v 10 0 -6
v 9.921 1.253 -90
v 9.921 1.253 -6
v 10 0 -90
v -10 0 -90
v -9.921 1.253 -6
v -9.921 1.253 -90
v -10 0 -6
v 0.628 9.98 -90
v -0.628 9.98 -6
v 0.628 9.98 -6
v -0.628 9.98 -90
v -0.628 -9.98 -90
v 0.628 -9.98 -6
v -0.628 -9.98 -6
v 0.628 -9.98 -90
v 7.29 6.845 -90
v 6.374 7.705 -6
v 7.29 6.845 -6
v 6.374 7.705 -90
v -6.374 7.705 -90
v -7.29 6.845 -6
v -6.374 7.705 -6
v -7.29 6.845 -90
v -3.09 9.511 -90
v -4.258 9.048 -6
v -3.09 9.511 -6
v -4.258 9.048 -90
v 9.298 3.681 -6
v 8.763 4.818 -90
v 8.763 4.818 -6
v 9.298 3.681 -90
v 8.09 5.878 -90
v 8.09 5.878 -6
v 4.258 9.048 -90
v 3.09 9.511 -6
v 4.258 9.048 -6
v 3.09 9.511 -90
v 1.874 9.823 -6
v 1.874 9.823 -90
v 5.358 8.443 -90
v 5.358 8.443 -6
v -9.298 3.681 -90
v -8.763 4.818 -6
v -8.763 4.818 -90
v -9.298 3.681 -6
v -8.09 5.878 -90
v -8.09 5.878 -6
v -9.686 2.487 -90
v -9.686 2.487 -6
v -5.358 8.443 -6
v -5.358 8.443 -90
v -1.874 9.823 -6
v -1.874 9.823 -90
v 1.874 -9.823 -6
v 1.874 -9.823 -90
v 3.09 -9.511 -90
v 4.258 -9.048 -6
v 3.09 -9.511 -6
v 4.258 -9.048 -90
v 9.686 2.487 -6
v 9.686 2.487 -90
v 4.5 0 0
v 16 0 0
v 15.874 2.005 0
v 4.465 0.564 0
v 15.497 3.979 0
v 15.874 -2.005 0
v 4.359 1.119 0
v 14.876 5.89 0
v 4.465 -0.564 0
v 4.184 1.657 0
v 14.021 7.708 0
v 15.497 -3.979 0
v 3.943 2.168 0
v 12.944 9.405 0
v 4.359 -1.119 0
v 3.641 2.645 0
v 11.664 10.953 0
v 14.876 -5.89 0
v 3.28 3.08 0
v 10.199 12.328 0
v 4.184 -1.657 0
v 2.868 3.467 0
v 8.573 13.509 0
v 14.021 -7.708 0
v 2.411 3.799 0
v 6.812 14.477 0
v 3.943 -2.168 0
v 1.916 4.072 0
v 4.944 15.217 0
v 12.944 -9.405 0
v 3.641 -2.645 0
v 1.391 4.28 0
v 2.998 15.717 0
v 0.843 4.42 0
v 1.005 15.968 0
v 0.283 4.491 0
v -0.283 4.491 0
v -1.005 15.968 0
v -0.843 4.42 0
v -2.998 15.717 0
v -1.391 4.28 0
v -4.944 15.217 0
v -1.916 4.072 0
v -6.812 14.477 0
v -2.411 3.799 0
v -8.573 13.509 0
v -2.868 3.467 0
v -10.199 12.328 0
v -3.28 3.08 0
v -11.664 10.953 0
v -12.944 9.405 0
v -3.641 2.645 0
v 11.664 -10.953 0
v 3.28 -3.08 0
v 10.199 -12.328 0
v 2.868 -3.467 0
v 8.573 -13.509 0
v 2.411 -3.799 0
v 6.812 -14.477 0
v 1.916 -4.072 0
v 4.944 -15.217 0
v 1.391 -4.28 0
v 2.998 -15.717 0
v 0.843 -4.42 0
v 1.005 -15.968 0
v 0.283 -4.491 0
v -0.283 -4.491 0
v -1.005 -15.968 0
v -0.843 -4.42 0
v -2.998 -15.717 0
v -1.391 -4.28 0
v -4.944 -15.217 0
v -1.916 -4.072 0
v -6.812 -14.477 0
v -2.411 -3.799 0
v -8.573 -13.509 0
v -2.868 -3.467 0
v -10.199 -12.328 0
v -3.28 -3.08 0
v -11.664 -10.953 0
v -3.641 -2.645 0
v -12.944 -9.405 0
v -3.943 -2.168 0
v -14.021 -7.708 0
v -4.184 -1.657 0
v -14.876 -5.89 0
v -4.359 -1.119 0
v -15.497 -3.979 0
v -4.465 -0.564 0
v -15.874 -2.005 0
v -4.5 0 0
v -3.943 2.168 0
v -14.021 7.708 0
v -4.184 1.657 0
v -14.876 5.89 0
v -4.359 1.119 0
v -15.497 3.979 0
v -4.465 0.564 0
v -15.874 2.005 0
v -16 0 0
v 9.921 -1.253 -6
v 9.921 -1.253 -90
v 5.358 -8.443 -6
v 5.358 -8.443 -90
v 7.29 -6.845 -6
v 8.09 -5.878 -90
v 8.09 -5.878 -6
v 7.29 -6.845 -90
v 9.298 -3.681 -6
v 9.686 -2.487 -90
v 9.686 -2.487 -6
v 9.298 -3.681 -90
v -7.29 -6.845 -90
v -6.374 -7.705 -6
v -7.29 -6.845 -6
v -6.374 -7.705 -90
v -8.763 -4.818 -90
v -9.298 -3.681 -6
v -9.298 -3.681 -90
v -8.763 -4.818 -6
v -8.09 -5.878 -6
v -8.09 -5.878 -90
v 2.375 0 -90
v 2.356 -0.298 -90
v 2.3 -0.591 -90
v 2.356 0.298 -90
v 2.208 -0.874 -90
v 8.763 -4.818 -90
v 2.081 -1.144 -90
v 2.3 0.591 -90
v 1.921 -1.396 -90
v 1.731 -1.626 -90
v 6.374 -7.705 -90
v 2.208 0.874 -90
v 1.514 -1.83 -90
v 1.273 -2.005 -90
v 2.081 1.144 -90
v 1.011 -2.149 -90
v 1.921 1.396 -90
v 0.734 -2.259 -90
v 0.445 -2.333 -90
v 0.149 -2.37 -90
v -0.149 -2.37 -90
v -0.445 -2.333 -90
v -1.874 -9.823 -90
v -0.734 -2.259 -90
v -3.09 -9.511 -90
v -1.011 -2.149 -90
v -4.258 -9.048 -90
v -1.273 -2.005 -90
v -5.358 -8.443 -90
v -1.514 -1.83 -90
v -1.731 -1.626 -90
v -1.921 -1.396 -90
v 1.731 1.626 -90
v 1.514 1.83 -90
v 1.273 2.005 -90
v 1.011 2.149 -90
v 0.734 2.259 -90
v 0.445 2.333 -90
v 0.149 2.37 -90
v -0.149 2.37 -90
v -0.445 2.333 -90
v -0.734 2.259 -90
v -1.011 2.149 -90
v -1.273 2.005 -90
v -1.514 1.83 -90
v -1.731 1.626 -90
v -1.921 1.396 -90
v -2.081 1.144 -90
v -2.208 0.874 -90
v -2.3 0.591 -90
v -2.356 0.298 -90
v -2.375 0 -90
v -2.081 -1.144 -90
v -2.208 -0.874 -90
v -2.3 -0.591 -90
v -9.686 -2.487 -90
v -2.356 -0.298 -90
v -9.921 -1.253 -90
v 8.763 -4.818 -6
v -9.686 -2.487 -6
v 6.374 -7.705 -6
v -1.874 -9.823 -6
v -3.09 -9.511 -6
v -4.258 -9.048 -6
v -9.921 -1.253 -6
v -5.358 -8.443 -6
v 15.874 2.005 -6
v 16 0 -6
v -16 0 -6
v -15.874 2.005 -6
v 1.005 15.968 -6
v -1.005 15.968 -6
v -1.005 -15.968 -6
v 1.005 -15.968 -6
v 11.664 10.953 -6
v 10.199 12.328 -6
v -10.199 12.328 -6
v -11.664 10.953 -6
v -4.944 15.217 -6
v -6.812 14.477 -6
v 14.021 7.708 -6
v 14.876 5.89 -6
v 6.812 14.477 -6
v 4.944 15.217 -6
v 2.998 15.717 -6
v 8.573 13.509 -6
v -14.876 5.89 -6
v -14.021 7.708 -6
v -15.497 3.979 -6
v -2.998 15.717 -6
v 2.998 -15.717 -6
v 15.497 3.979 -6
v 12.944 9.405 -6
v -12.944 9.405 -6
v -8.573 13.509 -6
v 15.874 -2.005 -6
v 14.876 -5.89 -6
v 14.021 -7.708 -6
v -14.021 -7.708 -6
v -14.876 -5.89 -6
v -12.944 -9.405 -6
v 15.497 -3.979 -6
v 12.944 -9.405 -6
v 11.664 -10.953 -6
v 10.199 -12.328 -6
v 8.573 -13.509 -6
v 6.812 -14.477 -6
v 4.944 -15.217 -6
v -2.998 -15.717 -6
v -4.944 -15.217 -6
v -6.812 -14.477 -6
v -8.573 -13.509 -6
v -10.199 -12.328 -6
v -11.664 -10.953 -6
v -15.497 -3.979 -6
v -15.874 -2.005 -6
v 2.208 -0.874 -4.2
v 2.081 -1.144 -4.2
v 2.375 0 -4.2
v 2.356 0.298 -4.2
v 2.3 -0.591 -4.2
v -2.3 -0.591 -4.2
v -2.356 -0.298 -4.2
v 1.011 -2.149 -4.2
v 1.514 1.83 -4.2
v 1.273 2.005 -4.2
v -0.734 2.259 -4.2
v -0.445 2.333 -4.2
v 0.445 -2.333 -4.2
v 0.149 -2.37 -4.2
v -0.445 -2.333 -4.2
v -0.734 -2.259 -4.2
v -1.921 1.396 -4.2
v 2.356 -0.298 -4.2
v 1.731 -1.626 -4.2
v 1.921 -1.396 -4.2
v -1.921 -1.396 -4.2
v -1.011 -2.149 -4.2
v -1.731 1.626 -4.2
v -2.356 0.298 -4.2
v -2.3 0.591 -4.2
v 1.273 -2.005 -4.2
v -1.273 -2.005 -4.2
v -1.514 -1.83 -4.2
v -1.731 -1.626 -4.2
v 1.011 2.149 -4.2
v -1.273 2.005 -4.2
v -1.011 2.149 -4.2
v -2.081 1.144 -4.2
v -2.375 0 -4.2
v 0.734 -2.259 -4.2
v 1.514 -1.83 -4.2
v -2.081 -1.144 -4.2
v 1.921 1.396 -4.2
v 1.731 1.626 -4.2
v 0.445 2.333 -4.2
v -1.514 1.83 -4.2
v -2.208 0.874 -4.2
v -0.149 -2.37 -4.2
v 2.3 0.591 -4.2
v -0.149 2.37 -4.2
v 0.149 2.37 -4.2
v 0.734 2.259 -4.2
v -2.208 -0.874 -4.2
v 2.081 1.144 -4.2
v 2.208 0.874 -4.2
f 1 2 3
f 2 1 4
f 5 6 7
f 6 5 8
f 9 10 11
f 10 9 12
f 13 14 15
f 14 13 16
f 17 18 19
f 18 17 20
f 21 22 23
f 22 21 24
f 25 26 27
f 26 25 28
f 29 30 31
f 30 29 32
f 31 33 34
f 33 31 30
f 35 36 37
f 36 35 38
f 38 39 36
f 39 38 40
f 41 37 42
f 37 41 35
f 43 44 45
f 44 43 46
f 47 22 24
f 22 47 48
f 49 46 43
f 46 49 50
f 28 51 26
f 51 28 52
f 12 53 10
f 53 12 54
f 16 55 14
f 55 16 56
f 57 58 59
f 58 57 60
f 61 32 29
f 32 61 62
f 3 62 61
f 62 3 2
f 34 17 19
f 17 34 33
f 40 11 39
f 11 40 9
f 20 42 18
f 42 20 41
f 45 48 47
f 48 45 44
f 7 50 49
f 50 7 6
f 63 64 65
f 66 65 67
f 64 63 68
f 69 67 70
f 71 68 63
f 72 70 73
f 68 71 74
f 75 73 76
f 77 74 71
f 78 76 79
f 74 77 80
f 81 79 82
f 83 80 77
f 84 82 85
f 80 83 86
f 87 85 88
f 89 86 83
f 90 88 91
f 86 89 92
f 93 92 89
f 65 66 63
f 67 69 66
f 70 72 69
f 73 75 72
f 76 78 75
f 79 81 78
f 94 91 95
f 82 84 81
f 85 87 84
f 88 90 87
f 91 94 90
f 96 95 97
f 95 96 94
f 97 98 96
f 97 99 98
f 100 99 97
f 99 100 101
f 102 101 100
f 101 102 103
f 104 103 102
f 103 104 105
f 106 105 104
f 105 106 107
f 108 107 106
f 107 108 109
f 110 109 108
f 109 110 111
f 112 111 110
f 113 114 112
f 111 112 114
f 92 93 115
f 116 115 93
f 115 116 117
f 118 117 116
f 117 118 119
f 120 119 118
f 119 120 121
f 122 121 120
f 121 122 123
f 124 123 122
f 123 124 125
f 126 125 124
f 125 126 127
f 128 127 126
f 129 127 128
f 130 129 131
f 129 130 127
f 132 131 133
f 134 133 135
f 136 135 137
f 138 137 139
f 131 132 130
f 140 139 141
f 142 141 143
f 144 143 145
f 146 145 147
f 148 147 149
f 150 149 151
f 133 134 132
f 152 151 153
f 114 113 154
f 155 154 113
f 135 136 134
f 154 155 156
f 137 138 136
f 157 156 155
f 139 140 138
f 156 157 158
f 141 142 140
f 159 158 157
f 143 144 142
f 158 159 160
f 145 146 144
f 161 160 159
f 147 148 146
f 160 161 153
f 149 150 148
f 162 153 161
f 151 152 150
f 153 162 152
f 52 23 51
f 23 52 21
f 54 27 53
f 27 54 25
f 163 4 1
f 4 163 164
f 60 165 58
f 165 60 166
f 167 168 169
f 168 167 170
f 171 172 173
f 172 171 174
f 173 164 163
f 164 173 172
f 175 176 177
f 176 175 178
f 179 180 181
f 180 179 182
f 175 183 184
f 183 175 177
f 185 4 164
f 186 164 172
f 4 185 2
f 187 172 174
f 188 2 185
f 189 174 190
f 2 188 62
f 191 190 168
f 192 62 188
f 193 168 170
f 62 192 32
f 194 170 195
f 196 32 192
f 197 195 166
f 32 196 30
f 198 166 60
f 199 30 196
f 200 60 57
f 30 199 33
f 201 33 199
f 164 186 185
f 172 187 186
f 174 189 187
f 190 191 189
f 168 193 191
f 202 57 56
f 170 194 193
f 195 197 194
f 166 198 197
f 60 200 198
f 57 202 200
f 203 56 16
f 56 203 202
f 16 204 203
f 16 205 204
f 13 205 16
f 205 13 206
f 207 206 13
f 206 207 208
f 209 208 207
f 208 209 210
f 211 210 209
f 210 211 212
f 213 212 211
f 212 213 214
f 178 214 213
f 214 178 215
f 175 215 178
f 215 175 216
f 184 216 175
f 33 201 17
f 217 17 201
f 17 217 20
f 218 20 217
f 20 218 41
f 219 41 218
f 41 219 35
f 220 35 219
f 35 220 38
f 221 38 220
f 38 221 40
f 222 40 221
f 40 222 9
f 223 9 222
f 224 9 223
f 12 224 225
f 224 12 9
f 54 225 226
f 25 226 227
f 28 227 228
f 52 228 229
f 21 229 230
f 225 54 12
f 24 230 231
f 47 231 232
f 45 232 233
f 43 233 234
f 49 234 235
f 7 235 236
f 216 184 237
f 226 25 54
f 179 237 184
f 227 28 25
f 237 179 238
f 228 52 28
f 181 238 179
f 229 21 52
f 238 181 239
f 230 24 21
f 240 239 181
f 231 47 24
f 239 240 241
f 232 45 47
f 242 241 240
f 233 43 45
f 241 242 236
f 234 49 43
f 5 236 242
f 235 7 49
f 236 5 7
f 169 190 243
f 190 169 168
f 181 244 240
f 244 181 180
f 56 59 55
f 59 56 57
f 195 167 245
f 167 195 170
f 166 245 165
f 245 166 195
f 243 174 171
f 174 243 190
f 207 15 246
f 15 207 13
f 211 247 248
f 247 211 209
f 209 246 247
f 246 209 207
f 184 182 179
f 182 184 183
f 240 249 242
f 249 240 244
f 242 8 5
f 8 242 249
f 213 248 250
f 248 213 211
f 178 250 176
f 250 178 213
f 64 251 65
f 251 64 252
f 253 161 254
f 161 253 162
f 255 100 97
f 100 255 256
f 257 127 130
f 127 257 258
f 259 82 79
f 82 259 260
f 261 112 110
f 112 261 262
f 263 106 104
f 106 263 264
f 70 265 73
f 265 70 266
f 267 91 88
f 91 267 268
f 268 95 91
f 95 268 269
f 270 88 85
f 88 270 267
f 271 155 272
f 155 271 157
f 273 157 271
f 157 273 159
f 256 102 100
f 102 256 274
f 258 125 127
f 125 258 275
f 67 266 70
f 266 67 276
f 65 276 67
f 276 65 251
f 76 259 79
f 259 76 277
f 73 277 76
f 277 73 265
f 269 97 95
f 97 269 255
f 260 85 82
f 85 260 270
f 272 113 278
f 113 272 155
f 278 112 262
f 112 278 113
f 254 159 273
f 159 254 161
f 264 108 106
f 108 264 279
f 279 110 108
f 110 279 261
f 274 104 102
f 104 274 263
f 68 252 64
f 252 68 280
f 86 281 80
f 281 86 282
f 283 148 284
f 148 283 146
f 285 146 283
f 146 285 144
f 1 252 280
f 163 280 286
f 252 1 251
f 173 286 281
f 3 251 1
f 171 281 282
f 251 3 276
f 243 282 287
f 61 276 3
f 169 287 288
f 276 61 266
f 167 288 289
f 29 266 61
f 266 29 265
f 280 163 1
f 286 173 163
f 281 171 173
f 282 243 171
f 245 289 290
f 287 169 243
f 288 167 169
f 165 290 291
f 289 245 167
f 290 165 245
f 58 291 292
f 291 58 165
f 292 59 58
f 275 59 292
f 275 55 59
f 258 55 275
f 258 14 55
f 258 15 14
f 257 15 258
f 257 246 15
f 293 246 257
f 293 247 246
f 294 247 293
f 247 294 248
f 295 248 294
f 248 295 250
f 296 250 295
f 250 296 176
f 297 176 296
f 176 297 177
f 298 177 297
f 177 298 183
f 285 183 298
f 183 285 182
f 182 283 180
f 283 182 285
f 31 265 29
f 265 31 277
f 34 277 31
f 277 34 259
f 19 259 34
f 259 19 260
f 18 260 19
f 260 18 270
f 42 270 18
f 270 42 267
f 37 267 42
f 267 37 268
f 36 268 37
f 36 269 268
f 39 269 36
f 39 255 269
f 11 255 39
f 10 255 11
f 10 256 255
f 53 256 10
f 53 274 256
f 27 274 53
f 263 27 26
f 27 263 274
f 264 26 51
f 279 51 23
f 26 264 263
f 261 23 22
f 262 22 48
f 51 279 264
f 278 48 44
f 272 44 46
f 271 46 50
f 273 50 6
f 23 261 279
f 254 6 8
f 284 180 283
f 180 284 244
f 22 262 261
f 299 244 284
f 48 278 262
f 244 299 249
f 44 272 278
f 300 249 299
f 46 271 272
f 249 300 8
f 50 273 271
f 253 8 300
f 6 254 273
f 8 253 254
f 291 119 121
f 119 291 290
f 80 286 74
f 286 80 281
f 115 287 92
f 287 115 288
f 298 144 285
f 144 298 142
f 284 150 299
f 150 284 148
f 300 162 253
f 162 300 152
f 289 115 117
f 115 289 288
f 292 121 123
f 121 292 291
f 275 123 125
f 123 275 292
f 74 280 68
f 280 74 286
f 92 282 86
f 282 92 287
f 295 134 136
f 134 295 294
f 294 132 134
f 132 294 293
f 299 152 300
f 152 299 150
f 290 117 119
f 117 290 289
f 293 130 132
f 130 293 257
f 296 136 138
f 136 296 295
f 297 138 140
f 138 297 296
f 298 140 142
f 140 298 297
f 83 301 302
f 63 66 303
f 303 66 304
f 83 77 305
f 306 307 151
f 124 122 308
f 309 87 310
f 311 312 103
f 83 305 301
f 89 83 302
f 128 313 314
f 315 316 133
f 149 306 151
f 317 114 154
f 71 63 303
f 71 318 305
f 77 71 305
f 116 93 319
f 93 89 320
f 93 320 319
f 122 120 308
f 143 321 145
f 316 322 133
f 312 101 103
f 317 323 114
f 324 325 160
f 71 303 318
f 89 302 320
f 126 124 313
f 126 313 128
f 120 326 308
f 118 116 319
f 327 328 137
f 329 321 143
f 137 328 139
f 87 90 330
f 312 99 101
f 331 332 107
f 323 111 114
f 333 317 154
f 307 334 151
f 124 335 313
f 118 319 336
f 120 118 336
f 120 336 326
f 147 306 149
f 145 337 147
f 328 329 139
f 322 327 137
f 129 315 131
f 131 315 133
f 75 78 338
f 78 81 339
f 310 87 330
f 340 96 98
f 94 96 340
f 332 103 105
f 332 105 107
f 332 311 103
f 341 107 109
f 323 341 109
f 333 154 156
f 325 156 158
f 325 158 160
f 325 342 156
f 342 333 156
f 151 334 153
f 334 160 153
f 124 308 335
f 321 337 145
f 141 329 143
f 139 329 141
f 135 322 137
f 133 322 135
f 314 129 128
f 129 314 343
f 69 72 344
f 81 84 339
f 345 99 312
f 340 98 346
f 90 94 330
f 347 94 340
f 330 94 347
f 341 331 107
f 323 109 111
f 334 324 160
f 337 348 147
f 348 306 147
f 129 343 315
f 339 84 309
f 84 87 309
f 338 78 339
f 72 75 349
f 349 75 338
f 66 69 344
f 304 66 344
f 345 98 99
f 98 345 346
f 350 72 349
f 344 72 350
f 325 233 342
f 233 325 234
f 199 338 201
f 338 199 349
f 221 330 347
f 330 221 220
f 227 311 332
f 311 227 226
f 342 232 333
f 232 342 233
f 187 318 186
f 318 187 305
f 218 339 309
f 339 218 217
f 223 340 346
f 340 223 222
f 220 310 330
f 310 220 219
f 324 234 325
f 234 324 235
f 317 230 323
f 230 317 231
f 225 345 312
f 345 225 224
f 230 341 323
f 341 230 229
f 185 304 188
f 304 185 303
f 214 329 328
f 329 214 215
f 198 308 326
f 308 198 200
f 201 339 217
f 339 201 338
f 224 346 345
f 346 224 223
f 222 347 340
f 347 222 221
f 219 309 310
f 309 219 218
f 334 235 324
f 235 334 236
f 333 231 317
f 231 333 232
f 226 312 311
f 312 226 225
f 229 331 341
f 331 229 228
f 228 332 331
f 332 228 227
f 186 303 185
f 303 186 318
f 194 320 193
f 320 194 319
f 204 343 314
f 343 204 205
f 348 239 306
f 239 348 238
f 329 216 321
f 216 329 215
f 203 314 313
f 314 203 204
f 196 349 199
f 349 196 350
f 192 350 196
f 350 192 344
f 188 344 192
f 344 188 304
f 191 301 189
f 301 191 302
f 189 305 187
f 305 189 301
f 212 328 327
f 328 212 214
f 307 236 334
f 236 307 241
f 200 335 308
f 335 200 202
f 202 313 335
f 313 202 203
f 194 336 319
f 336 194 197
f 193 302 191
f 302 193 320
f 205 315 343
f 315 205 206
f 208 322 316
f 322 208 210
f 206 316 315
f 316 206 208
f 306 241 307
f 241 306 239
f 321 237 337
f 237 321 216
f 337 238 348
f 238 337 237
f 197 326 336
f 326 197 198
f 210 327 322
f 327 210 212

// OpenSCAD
$fn = 50;


difference() {
	union() {
		translate(v = [0, 0, -90.0000000000]) {
			cylinder(h = 90, r = 10.0000000000);
		}
		translate(v = [0, 0, -6.0000000000]) {
			cylinder(h = 6, r = 16.0000000000);
		}
	}
	union() {
		translate(v = [0, 0, 0]) {
			rotate(a = [0, 0, 0]) {
				difference() {
					union() {
						#translate(v = [0, 0, -90.0000000000]) {
							cylinder(h = 90, r = 2.2500000000);
						}
						#translate(v = [0, 0, -4.2000000000]) {
							cylinder(h = 4.2000000000, r = 10.0000000000, r1 = 2.3750000000, r2 = 4.5000000000);
						}
						#translate(v = [0, 0, -90.0000000000]) {
							cylinder(h = 90, r = 2.3750000000);
						}
						#translate(v = [0, 0, -90.0000000000]) {
							cylinder(h = 90, r = 2.2500000000);
						}
					}
					union();
				}
			}
		}
	}
}
